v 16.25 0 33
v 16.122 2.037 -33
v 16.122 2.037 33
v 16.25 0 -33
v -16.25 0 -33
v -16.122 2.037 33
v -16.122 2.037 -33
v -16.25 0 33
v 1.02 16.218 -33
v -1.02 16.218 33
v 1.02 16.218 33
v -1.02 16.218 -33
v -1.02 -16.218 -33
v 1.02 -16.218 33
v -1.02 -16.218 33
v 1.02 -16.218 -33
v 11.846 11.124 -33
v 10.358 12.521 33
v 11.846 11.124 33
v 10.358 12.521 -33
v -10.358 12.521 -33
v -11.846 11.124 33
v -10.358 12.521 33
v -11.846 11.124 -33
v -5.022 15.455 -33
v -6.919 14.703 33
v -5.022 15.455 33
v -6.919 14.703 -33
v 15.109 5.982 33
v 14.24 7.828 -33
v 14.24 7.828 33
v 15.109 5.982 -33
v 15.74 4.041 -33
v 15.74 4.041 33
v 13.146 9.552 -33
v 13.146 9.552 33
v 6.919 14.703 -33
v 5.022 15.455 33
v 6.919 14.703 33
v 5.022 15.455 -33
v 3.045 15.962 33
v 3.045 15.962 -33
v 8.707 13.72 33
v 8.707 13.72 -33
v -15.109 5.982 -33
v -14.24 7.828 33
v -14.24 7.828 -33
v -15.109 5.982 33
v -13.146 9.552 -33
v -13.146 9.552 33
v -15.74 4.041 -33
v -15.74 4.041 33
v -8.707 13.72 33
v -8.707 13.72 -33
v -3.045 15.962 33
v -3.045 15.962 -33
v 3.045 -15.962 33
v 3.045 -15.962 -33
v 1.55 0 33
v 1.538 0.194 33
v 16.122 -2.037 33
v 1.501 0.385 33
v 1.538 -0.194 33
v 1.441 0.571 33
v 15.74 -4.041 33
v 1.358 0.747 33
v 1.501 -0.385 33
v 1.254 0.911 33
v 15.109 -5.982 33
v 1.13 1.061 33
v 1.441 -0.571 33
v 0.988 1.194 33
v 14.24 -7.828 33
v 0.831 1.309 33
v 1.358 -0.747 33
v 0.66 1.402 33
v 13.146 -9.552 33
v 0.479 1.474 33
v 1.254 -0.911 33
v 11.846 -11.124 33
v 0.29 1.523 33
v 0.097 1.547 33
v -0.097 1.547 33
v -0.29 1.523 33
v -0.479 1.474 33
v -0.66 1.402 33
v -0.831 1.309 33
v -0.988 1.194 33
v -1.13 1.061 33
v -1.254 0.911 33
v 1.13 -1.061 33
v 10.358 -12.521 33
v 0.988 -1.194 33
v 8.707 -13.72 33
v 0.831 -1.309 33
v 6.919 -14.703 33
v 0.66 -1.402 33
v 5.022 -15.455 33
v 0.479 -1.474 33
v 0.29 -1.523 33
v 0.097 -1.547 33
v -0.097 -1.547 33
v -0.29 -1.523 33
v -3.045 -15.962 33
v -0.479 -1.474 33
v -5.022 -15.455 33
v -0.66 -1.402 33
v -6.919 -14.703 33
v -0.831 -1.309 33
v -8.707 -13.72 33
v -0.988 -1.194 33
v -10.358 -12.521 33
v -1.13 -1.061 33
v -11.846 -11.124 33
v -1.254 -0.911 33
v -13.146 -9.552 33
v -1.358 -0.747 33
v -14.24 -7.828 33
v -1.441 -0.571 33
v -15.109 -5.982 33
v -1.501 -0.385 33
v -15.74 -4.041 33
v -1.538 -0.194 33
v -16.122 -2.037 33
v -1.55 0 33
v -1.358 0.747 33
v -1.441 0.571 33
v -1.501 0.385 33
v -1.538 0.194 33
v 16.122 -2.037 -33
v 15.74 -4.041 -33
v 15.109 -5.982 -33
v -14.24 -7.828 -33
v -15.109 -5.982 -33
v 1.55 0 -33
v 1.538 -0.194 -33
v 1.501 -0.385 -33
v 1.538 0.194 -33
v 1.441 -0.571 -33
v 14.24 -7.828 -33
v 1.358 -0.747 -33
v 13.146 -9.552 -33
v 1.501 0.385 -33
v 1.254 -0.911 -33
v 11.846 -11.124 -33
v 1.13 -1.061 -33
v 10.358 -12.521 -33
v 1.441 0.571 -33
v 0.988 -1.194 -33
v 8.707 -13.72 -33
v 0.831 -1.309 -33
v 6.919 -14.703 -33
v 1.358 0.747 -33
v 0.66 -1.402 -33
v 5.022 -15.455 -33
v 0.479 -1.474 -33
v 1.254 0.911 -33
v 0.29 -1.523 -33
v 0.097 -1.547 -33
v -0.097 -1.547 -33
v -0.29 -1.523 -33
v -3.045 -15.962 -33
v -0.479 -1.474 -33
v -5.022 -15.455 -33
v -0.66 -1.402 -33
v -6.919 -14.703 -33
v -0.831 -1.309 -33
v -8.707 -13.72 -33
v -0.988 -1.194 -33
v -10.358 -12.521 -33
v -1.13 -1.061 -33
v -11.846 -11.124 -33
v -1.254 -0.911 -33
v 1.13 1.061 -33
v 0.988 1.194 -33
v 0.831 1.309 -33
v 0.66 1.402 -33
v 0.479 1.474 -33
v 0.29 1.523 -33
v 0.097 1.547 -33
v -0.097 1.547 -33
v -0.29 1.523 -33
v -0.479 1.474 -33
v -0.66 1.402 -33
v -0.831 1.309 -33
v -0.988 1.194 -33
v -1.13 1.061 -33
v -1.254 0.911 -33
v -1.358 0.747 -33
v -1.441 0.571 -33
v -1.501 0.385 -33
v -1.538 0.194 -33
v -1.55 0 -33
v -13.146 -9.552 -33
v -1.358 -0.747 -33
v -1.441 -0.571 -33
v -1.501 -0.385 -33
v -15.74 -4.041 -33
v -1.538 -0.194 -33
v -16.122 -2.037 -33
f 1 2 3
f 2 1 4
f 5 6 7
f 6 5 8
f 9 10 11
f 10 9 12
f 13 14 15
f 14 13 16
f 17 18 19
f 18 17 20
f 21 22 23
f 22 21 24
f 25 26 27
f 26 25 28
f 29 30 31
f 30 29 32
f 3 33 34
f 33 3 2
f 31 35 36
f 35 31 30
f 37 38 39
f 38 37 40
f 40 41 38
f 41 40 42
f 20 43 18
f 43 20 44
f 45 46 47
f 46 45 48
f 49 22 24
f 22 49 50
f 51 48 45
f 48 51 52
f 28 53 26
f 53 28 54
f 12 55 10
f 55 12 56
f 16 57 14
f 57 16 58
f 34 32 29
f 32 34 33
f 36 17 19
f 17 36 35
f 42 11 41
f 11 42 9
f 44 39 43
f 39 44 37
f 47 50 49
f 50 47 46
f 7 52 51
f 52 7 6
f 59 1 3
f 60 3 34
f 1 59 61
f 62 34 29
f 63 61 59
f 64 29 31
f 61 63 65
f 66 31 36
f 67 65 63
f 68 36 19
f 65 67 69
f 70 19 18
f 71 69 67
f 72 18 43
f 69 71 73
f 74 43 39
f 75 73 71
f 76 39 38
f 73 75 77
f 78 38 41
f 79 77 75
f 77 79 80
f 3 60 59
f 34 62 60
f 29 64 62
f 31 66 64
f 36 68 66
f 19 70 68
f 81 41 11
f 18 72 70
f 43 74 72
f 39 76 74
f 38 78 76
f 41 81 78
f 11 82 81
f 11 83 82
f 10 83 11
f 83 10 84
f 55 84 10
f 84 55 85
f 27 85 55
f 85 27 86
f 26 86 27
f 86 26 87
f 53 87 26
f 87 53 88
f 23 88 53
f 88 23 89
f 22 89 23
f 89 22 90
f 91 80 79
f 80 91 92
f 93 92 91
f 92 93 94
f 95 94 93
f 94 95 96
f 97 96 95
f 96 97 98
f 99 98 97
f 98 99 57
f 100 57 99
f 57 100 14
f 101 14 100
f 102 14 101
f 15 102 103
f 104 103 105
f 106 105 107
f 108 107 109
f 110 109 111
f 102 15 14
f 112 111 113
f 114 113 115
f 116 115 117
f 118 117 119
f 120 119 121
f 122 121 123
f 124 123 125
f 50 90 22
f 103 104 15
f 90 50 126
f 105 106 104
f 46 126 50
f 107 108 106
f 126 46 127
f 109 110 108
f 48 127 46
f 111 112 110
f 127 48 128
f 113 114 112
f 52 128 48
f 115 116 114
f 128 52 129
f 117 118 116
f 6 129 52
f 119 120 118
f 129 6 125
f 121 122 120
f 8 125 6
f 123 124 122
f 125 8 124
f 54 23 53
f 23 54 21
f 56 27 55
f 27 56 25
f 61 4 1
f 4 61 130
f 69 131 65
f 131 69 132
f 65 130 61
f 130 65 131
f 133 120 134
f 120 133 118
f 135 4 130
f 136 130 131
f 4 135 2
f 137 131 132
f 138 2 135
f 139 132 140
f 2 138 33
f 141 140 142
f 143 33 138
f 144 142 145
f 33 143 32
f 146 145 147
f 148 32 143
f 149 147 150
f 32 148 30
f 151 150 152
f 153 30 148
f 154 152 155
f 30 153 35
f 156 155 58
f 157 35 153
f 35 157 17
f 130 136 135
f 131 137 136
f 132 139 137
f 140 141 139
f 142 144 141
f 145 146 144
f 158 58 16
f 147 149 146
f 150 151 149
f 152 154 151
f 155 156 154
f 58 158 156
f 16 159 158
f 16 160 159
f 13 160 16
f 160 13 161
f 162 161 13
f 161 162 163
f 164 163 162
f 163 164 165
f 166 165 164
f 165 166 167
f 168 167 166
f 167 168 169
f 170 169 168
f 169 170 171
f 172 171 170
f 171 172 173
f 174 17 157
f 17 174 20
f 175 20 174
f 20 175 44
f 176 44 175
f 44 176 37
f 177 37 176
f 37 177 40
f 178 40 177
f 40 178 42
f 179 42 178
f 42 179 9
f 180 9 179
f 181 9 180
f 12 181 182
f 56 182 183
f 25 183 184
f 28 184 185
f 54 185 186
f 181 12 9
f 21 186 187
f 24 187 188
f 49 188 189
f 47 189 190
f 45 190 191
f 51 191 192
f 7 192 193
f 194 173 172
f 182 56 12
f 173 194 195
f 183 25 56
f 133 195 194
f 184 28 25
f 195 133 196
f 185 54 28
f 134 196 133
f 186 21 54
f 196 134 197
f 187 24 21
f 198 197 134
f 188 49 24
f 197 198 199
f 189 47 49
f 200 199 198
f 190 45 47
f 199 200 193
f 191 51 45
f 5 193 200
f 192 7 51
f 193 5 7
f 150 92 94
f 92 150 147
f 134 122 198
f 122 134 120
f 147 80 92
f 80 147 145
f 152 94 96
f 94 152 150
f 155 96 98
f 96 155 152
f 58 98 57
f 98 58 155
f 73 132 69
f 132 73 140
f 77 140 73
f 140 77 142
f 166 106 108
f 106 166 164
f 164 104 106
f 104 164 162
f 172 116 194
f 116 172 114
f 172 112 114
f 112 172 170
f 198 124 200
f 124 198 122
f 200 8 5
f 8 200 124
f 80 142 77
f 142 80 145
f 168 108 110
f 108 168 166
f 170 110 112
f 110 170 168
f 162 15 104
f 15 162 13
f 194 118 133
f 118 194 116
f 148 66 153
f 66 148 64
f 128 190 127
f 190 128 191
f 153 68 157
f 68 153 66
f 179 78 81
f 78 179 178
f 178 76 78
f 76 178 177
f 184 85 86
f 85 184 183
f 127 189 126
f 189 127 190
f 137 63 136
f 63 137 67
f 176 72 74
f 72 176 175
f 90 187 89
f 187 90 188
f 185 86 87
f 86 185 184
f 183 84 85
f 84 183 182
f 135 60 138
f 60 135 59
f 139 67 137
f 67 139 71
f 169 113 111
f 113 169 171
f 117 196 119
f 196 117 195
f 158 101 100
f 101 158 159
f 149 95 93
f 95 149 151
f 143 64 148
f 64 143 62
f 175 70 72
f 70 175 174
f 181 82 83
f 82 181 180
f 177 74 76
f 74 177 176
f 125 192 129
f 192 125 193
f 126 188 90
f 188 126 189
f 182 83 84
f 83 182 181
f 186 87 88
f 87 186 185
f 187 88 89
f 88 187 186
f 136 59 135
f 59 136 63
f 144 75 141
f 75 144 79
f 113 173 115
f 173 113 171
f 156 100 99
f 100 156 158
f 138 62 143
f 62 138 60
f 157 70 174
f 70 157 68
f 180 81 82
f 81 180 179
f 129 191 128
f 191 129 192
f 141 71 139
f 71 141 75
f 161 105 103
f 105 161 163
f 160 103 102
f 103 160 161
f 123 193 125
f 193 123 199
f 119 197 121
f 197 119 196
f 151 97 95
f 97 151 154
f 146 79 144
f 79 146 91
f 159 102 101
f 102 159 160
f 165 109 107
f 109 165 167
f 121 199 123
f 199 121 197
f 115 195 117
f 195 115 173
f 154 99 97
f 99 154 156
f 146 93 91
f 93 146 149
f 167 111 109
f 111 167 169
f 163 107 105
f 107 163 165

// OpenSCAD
$fn = 50;


difference() {
	union() {
		translate(v = [0, 0, -33.0000000000]) {
			cylinder(h = 66, r = 16.2500000000);
		}
	}
	union() {
		translate(v = [0, 0, -100.0000000000]) {
			cylinder(h = 200, r = 1.5500000000);
		}
	}
}
